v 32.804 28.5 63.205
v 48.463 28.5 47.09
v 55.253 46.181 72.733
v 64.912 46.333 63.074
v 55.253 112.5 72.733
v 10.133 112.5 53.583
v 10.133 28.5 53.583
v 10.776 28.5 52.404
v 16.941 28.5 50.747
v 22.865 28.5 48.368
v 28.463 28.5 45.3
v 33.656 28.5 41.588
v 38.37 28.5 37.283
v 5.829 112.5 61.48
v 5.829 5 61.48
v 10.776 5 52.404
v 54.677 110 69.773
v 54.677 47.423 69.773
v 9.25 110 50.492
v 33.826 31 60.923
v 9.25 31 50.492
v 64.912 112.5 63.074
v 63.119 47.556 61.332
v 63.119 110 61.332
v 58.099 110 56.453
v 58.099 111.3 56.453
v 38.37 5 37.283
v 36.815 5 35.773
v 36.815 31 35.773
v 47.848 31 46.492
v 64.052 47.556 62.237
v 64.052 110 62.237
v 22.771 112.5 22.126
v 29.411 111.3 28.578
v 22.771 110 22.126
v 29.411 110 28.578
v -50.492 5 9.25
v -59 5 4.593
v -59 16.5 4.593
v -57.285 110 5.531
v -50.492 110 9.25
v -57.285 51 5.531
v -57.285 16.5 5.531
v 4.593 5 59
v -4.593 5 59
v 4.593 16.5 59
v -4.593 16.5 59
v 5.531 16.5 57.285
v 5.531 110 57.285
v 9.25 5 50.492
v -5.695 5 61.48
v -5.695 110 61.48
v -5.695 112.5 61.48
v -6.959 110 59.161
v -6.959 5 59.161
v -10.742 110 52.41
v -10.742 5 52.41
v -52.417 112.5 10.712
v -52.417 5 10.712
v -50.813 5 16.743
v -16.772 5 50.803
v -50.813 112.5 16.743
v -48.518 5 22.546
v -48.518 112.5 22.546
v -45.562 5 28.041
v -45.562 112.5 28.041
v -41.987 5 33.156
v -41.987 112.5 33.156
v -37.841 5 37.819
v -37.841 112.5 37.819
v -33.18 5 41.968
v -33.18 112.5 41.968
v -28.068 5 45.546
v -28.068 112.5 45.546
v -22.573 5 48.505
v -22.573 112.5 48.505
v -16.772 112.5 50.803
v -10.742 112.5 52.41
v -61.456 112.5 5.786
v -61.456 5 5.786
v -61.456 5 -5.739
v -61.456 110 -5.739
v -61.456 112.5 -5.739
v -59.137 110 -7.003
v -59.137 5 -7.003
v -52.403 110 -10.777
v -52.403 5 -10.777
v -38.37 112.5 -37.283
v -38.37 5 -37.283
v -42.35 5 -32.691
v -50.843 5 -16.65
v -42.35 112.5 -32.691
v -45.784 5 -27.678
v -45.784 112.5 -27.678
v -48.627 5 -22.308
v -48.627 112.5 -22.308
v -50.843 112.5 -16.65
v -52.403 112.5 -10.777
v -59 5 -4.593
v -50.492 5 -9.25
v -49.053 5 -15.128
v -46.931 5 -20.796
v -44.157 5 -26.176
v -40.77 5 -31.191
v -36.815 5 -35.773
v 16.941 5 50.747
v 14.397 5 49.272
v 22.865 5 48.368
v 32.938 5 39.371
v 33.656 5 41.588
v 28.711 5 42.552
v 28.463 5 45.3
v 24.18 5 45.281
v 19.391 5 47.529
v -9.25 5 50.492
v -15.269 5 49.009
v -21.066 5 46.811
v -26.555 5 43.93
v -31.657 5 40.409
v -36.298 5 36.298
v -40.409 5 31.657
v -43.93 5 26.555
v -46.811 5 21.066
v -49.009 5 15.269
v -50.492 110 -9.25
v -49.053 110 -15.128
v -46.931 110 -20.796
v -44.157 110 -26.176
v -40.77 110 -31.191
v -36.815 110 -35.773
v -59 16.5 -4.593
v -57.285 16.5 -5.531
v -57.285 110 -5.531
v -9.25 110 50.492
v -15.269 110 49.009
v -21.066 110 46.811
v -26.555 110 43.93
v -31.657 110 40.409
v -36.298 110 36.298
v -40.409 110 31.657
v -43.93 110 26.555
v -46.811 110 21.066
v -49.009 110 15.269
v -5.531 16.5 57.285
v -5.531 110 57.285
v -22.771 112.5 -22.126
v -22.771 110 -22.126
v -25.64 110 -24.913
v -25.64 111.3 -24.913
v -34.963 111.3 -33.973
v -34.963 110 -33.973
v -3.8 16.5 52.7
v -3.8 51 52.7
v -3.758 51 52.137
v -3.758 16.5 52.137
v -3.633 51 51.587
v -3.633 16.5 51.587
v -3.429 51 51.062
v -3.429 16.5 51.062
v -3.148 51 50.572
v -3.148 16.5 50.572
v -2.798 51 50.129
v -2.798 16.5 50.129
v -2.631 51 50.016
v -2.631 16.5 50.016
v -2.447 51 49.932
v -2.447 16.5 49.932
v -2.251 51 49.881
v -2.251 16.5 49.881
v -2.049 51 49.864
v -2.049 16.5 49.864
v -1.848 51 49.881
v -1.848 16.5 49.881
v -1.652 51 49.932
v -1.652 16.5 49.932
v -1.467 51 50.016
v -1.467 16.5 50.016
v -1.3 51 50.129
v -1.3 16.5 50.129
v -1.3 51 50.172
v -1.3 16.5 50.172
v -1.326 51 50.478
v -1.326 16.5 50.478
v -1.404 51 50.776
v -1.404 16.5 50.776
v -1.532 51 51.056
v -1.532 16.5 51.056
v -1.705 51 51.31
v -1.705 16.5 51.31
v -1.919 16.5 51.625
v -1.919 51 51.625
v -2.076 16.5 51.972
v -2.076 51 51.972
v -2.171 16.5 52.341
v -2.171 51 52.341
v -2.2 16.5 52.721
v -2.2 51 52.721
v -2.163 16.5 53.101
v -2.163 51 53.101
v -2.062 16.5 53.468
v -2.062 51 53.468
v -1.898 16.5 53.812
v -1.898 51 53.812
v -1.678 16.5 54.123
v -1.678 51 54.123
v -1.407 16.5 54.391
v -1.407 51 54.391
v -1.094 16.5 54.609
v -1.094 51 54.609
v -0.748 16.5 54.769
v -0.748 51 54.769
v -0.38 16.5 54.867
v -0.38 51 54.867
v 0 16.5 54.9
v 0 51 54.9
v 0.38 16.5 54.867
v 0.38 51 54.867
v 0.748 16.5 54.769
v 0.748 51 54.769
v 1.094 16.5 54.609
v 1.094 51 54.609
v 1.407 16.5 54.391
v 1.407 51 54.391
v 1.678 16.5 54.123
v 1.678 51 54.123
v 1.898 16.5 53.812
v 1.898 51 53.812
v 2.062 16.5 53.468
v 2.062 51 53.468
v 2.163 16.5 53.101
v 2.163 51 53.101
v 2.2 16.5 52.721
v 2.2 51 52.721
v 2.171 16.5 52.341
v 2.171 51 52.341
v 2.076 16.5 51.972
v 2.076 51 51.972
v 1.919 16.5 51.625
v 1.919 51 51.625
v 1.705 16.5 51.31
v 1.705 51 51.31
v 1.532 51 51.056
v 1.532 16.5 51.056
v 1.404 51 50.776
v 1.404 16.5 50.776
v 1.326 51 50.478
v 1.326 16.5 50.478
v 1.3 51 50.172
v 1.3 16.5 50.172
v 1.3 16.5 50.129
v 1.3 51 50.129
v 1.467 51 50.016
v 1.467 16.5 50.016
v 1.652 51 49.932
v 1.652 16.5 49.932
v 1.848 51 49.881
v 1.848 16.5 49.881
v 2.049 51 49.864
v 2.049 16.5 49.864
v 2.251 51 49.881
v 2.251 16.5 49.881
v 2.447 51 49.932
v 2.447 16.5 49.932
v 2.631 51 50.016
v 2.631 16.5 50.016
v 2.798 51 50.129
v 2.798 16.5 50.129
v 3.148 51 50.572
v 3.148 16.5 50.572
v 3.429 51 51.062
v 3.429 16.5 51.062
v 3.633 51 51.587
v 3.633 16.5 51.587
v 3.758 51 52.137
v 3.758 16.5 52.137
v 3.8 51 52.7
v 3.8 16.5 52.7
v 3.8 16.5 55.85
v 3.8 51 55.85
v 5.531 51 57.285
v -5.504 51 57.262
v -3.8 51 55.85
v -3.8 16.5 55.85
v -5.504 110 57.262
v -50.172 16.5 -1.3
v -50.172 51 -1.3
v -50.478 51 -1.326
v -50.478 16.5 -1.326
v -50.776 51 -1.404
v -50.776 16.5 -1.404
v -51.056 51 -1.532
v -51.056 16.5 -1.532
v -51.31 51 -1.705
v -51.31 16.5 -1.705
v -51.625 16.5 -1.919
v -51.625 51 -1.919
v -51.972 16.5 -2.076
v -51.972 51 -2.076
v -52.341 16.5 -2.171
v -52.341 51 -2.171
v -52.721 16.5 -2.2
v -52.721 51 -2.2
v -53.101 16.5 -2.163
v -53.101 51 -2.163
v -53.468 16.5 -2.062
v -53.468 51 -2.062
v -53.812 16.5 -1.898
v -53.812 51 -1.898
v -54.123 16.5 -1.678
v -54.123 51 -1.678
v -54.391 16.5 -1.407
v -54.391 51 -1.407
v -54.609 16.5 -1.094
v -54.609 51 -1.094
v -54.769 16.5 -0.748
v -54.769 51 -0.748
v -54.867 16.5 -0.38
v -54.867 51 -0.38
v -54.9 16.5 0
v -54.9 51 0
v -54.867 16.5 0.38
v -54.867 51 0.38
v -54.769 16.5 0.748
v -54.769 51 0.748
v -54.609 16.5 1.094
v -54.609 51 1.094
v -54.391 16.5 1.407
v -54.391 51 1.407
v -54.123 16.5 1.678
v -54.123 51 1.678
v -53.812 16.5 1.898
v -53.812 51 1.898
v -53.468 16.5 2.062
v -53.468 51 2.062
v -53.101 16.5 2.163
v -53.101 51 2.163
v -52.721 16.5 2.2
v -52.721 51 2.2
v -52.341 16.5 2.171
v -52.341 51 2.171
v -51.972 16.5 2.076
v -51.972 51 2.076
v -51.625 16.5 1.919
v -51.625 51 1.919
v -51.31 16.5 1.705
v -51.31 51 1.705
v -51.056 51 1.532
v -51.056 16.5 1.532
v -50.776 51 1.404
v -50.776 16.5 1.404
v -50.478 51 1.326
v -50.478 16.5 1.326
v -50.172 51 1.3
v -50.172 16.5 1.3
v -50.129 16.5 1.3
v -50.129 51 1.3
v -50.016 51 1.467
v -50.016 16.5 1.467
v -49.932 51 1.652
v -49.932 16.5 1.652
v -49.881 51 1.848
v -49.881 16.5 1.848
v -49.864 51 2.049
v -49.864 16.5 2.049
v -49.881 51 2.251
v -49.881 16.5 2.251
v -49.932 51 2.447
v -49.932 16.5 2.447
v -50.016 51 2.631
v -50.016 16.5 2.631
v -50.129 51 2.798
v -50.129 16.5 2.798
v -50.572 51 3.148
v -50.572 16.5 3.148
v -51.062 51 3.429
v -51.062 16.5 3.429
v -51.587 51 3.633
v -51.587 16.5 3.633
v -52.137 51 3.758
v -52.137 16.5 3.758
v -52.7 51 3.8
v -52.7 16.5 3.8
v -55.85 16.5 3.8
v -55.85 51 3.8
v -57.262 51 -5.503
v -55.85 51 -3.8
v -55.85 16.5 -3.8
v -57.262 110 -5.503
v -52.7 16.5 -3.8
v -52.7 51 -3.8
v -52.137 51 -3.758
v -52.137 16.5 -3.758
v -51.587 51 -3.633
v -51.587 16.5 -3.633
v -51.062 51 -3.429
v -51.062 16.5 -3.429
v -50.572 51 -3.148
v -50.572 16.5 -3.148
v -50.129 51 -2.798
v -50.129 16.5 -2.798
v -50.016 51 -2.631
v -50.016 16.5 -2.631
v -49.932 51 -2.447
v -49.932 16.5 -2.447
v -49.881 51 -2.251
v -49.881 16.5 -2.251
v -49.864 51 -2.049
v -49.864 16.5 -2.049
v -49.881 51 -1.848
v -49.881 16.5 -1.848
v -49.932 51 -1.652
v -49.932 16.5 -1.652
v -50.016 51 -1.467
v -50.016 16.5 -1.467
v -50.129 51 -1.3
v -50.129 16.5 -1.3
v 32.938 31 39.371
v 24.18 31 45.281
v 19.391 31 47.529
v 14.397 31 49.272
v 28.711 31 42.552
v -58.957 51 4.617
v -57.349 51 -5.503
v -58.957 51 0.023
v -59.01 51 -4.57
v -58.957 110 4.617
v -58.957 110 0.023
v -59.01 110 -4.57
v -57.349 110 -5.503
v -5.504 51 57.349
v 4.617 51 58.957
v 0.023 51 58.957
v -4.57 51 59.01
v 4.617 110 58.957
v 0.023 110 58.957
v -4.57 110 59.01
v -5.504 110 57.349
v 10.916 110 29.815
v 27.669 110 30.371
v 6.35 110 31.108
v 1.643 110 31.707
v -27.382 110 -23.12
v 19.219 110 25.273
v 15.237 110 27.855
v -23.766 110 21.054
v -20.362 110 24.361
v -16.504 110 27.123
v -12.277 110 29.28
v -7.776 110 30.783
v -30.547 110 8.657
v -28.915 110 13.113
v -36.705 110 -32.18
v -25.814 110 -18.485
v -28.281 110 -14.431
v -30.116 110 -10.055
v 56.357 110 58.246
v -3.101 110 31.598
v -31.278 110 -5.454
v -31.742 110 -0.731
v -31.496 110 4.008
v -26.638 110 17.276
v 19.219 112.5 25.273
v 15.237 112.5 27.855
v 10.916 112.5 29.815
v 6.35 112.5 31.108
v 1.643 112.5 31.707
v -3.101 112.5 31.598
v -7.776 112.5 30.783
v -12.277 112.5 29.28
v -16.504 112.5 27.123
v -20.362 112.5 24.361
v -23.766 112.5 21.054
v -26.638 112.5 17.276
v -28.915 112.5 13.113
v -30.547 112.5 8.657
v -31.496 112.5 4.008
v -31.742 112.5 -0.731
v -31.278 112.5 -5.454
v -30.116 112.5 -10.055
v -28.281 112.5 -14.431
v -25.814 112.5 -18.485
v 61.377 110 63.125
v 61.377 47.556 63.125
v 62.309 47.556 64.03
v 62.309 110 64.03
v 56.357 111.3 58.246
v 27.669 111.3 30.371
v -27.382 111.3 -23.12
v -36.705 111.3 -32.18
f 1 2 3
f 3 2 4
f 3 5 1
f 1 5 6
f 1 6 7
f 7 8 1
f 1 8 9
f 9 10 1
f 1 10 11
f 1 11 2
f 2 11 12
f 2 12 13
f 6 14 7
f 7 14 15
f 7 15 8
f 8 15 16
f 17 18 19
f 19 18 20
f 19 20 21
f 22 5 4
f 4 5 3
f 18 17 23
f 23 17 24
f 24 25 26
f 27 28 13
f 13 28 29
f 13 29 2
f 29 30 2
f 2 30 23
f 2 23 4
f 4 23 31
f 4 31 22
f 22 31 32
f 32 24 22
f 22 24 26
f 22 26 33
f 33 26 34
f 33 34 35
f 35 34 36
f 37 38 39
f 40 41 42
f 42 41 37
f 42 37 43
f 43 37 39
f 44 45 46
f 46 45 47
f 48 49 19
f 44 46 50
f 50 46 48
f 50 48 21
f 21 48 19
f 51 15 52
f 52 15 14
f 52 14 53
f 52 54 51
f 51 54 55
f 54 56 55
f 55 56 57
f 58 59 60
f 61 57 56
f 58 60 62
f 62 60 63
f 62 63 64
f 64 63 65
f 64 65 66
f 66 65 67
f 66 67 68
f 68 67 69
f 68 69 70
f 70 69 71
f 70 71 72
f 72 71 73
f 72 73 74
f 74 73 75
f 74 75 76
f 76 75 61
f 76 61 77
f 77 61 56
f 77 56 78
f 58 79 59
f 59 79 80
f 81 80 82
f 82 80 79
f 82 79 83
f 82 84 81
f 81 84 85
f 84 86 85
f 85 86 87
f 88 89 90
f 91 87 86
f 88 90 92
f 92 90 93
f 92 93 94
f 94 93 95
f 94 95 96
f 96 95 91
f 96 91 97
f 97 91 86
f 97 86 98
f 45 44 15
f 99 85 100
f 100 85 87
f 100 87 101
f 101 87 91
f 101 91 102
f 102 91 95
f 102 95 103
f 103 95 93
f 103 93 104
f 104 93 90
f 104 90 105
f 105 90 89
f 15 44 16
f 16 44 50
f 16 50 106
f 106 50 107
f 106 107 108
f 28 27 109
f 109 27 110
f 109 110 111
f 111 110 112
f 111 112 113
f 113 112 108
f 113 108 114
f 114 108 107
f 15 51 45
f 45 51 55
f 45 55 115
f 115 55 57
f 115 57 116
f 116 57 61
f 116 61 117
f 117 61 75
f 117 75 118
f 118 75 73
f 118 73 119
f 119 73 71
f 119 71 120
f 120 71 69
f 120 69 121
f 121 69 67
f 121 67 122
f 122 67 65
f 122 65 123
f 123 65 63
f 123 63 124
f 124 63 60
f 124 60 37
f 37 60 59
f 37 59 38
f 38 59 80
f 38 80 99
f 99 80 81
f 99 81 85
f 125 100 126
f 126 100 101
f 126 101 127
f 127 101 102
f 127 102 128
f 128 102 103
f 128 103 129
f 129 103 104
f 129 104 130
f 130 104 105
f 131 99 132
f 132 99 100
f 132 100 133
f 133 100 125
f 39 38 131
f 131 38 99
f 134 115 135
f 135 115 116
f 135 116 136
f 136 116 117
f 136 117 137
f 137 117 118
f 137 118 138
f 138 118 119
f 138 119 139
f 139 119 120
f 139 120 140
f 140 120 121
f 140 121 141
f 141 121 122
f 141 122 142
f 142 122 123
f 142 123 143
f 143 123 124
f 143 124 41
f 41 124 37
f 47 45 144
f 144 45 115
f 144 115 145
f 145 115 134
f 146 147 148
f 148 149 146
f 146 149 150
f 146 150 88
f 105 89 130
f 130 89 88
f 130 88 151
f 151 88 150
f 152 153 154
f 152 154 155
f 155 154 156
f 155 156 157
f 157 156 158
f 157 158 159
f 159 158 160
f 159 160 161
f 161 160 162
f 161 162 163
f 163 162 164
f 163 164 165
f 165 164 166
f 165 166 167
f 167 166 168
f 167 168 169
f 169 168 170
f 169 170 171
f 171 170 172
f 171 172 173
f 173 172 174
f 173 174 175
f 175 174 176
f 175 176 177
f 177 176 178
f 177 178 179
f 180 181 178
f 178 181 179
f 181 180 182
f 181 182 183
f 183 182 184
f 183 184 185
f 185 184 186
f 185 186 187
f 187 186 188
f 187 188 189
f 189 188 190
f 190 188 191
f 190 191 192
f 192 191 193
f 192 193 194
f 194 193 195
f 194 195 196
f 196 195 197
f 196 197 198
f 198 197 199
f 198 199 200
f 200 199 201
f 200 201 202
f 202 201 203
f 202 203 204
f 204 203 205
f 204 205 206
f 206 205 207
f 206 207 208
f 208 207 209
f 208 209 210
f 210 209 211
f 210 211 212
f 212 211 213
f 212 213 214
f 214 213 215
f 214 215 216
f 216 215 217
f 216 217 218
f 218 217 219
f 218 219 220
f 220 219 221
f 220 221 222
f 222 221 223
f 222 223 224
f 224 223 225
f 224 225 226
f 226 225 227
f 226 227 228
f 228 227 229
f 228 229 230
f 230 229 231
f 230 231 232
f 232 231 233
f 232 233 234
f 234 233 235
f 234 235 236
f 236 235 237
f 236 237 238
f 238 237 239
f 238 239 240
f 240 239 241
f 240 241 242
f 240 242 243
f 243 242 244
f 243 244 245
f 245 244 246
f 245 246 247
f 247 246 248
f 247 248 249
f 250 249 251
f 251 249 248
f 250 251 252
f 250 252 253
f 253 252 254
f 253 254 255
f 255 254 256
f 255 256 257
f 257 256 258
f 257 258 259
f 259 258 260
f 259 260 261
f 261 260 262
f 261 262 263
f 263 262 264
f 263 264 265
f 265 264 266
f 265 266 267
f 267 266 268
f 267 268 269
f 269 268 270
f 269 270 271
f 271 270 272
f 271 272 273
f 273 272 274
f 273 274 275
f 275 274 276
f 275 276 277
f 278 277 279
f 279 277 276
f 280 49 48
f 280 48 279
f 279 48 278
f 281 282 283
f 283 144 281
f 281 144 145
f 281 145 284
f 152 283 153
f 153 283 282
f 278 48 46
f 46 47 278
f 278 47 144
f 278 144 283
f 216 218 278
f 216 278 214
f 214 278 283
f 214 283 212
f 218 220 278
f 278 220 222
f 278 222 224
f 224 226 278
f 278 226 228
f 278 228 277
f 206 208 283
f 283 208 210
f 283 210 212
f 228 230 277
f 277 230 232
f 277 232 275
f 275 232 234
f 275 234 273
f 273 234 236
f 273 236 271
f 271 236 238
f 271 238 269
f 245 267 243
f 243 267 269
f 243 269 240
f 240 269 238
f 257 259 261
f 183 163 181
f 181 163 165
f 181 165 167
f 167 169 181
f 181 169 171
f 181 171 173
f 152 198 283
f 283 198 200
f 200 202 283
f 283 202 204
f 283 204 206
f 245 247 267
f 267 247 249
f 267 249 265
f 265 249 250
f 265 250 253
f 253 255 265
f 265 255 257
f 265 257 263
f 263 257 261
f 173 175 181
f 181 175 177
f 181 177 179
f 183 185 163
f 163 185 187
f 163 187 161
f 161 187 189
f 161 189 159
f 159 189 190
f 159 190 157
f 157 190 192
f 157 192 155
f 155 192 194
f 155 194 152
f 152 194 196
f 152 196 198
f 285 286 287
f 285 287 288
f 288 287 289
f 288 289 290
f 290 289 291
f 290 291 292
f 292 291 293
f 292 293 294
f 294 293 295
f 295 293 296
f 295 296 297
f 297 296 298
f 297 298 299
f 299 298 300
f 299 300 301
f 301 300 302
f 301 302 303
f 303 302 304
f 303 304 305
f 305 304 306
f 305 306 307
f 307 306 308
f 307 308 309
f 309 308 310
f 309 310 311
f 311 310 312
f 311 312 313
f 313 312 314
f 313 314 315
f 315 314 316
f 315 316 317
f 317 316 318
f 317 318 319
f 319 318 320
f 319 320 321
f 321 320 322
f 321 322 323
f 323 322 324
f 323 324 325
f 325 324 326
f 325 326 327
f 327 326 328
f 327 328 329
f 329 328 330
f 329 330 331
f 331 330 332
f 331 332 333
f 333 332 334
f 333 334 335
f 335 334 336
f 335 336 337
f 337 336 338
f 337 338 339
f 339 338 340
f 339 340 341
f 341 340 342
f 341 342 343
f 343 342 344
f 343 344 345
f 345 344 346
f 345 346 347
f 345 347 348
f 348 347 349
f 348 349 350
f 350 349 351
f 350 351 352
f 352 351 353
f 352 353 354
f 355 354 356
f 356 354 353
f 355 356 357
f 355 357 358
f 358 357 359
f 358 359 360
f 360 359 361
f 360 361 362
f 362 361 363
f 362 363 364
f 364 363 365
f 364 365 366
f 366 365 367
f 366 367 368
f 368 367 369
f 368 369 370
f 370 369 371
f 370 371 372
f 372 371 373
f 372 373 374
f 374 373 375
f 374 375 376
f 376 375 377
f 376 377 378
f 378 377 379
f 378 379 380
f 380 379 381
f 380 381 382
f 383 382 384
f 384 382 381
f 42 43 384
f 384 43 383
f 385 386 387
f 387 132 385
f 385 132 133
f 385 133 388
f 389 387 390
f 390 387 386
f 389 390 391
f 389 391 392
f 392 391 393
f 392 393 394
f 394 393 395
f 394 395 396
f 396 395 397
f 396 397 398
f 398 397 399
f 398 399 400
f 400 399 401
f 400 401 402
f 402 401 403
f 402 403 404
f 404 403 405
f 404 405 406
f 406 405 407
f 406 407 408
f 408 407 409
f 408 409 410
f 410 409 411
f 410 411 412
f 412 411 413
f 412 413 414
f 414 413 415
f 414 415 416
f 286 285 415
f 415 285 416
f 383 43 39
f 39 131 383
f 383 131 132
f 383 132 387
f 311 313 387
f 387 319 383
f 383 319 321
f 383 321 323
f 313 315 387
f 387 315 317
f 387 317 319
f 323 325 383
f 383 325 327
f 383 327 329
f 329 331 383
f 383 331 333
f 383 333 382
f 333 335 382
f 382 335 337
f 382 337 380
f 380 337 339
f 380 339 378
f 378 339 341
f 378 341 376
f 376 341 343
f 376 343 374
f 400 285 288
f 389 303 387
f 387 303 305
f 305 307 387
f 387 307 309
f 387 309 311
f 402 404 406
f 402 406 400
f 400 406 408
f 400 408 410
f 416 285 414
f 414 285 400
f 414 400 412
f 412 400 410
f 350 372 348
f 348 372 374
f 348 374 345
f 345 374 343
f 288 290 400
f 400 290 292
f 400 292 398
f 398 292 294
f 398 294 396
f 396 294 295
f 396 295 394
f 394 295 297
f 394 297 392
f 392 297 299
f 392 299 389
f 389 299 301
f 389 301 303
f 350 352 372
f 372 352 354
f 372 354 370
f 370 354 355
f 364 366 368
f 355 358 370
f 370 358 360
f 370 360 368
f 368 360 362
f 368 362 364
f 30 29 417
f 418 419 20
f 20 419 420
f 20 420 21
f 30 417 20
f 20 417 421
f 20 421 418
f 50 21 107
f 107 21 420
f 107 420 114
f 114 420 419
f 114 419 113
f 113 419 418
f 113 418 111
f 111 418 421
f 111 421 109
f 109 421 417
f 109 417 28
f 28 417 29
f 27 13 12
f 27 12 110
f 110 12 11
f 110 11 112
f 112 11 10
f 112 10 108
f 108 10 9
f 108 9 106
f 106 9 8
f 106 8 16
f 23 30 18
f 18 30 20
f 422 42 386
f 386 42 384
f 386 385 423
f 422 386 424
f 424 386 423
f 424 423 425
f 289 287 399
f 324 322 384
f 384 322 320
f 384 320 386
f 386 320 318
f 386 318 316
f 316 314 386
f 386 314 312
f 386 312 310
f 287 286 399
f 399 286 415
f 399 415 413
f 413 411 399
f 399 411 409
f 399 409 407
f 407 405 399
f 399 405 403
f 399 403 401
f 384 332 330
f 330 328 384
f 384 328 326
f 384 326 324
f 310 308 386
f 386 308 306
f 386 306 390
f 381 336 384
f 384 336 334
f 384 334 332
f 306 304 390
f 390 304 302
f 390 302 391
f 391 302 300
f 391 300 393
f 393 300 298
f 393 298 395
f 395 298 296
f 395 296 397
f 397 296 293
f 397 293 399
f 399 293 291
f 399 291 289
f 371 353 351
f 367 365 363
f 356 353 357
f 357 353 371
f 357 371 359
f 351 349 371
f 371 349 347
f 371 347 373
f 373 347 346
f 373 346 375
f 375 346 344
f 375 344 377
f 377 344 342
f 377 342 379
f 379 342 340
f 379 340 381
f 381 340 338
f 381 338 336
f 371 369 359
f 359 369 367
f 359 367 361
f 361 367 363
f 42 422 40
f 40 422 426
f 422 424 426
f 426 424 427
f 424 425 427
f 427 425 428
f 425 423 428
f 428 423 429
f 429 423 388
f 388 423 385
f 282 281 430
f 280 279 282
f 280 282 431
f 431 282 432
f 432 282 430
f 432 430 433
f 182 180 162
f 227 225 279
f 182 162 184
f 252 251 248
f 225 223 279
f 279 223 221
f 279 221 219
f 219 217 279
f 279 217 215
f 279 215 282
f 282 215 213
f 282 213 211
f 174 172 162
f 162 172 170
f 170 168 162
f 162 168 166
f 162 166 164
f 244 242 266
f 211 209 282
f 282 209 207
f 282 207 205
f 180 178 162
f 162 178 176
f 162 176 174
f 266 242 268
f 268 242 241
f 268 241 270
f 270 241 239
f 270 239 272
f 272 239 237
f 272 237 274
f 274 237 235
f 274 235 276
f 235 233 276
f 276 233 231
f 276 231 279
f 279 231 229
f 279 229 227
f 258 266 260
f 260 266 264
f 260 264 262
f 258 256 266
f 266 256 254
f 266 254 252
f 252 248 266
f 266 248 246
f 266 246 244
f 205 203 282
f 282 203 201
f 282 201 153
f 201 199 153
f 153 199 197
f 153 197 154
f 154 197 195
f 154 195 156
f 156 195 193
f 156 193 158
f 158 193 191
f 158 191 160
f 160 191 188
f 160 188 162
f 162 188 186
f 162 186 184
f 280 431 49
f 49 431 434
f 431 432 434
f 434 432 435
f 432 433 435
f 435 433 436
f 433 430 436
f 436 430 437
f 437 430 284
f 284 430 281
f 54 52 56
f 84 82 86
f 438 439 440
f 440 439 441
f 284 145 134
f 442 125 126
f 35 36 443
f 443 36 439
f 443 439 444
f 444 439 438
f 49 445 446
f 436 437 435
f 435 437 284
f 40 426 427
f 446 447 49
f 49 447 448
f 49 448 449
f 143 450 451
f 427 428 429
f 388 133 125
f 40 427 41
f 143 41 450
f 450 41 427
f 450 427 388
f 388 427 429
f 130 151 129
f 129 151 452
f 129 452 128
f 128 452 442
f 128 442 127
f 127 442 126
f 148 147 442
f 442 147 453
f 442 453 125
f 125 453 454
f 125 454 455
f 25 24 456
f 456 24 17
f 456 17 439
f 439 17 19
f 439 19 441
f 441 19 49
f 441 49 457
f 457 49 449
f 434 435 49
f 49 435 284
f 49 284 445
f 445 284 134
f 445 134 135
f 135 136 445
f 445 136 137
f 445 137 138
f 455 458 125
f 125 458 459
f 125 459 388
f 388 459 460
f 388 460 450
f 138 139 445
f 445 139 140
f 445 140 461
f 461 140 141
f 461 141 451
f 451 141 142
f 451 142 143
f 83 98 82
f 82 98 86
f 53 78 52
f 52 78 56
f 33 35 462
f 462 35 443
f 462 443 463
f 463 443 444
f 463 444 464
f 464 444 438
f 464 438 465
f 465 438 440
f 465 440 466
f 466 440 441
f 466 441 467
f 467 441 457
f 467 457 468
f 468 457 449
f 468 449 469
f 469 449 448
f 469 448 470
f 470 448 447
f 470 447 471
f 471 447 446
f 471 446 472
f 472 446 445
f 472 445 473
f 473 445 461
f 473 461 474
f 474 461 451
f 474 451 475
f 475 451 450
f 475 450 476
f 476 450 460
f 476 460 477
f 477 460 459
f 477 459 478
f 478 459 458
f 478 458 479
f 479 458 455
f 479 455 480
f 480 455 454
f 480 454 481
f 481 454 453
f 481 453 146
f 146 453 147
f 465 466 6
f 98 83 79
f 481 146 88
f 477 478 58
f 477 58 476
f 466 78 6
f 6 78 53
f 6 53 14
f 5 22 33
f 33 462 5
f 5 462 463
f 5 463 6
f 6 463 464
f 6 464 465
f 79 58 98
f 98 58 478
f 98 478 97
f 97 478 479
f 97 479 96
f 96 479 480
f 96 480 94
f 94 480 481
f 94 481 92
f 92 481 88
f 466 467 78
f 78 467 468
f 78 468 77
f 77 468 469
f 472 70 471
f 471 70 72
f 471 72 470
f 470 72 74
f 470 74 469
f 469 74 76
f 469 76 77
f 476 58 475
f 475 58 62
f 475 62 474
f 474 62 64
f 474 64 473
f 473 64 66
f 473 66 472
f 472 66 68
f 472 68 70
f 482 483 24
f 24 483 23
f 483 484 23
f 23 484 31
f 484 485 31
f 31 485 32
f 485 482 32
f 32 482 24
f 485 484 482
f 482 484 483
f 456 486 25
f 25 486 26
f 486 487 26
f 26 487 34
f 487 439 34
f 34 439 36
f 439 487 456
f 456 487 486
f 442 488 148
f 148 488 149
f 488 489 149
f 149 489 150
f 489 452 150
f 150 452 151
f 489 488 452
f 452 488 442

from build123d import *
from build123d.topology import SkipClean

# Parameters (mm, degrees)
SALIENTE_EXTRUIR1_DEPTH  = 5
CROQUIS2_R               = 2.1
CORTAR_EXTRUIR1_DEPTH    = 83.176639016
CORTAR_EXTRUIR2_DEPTH    = 83.176639016
CROQUIS5_R               = 2.05
CORTAR_EXTRUIR4_DEPTH    = 83.176639016
SALIENTE_EXTRUIR2_DEPTH  = 5
CORTAR_EXTRUIR10_DEPTH   = 98.128780493
SALIENTE_EXTRUIR4_DEPTH  = 4
SALIENTE_EXTRUIR5_DEPTH  = 4
CROQUIS17_R              = 2.4
CORTAR_EXTRUIR11_DEPTH   = 98.128780493
SALIENTE_EXTRUIR6_DEPTH  = 105
CORTAR_EXTRUIR12_DEPTH   = 200
CORTAR_EXTRUIR13_DEPTH   = 200
SALIENTE_EXTRUIR7_DEPTH  = 93.5
CROQUIS28_W              = 67.409090619
CROQUIS28_H              = 26
CORTAR_EXTRUIR15_DEPTH   = 104
SALIENTE_EXTRUIR12_START = 2.5
SALIENTE_EXTRUIR12_DEPTH = 2.5
SALIENTE_EXTRUIR13_START = 23.5
SALIENTE_EXTRUIR13_DEPTH = 23.5
CORTAR_EXTRUIR20_DEPTH   = 50
SALIENTE_EXTRUIR18_DEPTH = 30.5
CROQUIS45_W              = 45.132524043
CROQUIS45_H              = 53.175944169
CORTAR_EXTRUIR23_DEPTH   = 30.5
CROQUIS46_W              = 25.804527637
CROQUIS46_H              = 25.652736297
CORTAR_EXTRUIR24_DEPTH   = 30.5
CORTAR_EXTRUIR26_DEPTH   = 59
SALIENTE_EXTRUIR19_DEPTH = 2.5
CROQUIS49_W              = 1.3
CROQUIS49_H              = 62.443972795
CORTAR_EXTRUIR27_DEPTH   = 2.5
CROQUIS50_W              = 40
CROQUIS50_H              = 1.3
CORTAR_EXTRUIR28_DEPTH   = 2.5
CROQUIS51_W              = 13
CROQUIS51_H              = 1.3
CORTAR_EXTRUIR29_DEPTH   = 2.5


with BuildPart() as part:
    # Croquis1 → Saliente-Extruir1 (new body)
    with BuildSketch(Plane(origin=(0, 0, 0), x_dir=(1, 0, 0), z_dir=(0, 1, 0))):
        with BuildLine():
            Line((4, 58), (8.807070745, 49.218243619))
            ThreePointArc((8.807070745, 49.218243619), (35.355339059, 35.355339059), (49.218243619, 8.807070745))
            Line((49.218243619, 8.807070745), (58, 4))
            Line((58, 4), (58, -4))
            Line((58, -4), (49.218243619, -8.807070745))
            ThreePointArc((49.218243619, -8.807070745), (35.355339059, -35.355339059), (8.807070745, -49.218243619))
            Line((8.807070745, -49.218243619), (4, -58))
            Line((4, -58), (-4, -58))
            Line((-4, -58), (-8.807070745, -49.218243619))
            ThreePointArc((-8.807070745, -49.218243619), (-35.355339059, -35.355339059), (-49.218243619, -8.807070745))
            Line((-49.218243619, -8.807070745), (-58, -4))
            Line((-58, -4), (-58, 4))
            Line((-58, 4), (-49.218243619, 8.807070745))
            ThreePointArc((-49.218243619, 8.807070745), (-35.355339059, 35.355339059), (-8.807070745, 49.218243619))
            Line((-8.807070745, 49.218243619), (-4, 58))
            Line((-4, 58), (4, 58))
        make_face()
    extrude(amount=SALIENTE_EXTRUIR1_DEPTH)

    # Croquis2 → Cortar-Extruir1 (cut, through all)
    with BuildSketch(Plane(origin=(0, 5, 0), x_dir=(1, 0, 0), z_dir=(0, 1, 0))):
        with Locations(Location((0, 52.7, 0), (0, 0, 270))):
            Circle(CROQUIS2_R)
        with Locations(Location((52.7, 0, 0), (0, 0, 270))):
            Circle(CROQUIS2_R)
        with Locations(Location((0, -52.7, 0), (0, 0, 270))):
            Circle(CROQUIS2_R)
        with Locations(Location((-52.7, 0, 0), (0, 0, 270))):
            Circle(CROQUIS2_R)
    extrude(amount=-CORTAR_EXTRUIR1_DEPTH, mode=Mode.SUBTRACT)

    # Croquis3 → Cortar-Extruir2 (cut, through all)
    with BuildSketch(Plane(origin=(0, 5, 0), x_dir=(1, 0, 0), z_dir=(0, 1, 0))):
        Polygon((20.506096654, -34.648232278), (34.648232278, -20.506096654), (47.376154339, -33.234018716), (67.218949341, -53.076813717), (53.076813717, -67.218949341), (33.234018716, -47.376154339), align=None)
    extrude(amount=-CORTAR_EXTRUIR2_DEPTH, mode=Mode.SUBTRACT)

    # Croquis5 → Cortar-Extruir4 (cut, through all)
    with BuildSketch(Plane(origin=(0, 5, 0), x_dir=(1, 0, 0), z_dir=(0, 1, 0))):
        with Locations(Location((-7.78, 7.78, 0), (0, 0, 270))):
            Circle(CROQUIS5_R)
        with Locations(Location((7.78, 7.78, 0), (0, 0, 270))):
            Circle(CROQUIS5_R)
        with Locations(Location((7.78, -7.78, 0), (0, 0, 270))):
            Circle(CROQUIS5_R)
        with Locations(Location((-7.78, -7.78, 0), (0, 0, 270))):
            Circle(CROQUIS5_R)
        with BuildLine():
            Line((21.554064831, -30.039346205), (23.334523779, -31.819805153))
            Line((23.334523779, -31.819805153), (24.748737342, -30.405591591))
            Line((24.748737342, -30.405591591), (22.968278393, -28.625132642))
            ThreePointArc((22.968278393, -28.625132642), (19.622213178, -26.69328099), (21.554064831, -30.039346205))
        make_face()
        with BuildLine():
            Line((28.625132642, -22.968278393), (30.986174209, -25.329319959))
            Line((30.986174209, -25.329319959), (32.400387771, -23.915106397))
            Line((32.400387771, -23.915106397), (30.039346205, -21.554064831))
            ThreePointArc((30.039346205, -21.554064831), (26.69328099, -19.622213178), (28.625132642, -22.968278393))
        make_face()
    extrude(amount=-CORTAR_EXTRUIR4_DEPTH, mode=Mode.SUBTRACT)

    # Croquis7 → Saliente-Extruir2 (add, through all)
    with BuildSketch(Plane(origin=(0, 5, 0), x_dir=(1, 0, 0), z_dir=(0, 1, 0))):
        Polygon((68.589357775, -54.447222151), (54.447222151, -68.589357775), (8.807070745, -49.218243619), (18.571685103, -46.422973972), (27.56994834, -41.712083963), (48.790367902, -62.932503526), (62.932503526, -48.790367902), (41.712083963, -27.56994834), (46.422973972, -18.571685103), (49.218243619, -8.807070745), align=None)
    extrude(amount=-SALIENTE_EXTRUIR2_DEPTH)

    # Croquis8 → Cortar-Extruir10 (cut, through all)
    with BuildSketch(Plane(origin=(0, 5, 0), x_dir=(1, 0, 0), z_dir=(0, 1, 0))):
        with BuildLine():
            Line((54.283137452, -59.939991701), (51.490214314, -57.147068564))
            Line((51.490214314, -57.147068564), (50.076000752, -58.561282126))
            Line((50.076000752, -58.561282126), (52.868923889, -61.354205264))
            ThreePointArc((52.868923889, -61.354205264), (56.214989104, -63.286056916), (54.283137452, -59.939991701))
        make_face()
        with BuildLine():
            Line((57.371843354, -51.714989104), (58.786056916, -50.300775542))
            Line((58.786056916, -50.300775542), (61.354205264, -52.868923889))
            ThreePointArc((61.354205264, -52.868923889), (63.286056916, -56.214989104), (59.939991701, -54.283137452))
            Line((59.939991701, -54.283137452), (57.371843354, -51.714989104))
        make_face()
    extrude(amount=-CORTAR_EXTRUIR10_DEPTH, mode=Mode.SUBTRACT)

    # Croquis15 → Saliente-Extruir4 (add)
    with BuildSketch(Plane.XZ):
        with BuildLine():
            Line((-1.111111111, -20.469866441), (-1.111111111, -22.472548411))
            ThreePointArc((-1.111111111, -22.472548411), (0, 22.5), (1.111111111, -22.472548411))
            Line((1.111111111, -22.472548411), (1.111111111, -20.469866441))
            ThreePointArc((1.111111111, -20.469866441), (0, 20.5), (-1.111111111, -20.469866441))
        make_face()
    extrude(amount=SALIENTE_EXTRUIR4_DEPTH)

    # Croquis16 → Saliente-Extruir5 (add)
    with SkipClean():  # the faces are left unmerged after this step: merging them gives an invalid solid
        with BuildSketch(Plane.XZ):
            with BuildLine():
                Line((-1.111111111, -20.469866441), (-1.111111111, -22.472548411))
                ThreePointArc((-1.111111111, -22.472548411), (0, -22.5), (1.111111111, -22.472548411))
                Line((1.111111111, -22.472548411), (1.111111111, -20.469866441))
                ThreePointArc((1.111111111, -20.469866441), (0, -20.5), (-1.111111111, -20.469866441))
            make_face()
        extrude(amount=SALIENTE_EXTRUIR5_DEPTH)

    # Croquis17 → Cortar-Extruir11 (cut, through all)
    with SkipClean():  # the faces are left unmerged after this step: merging them gives an invalid solid
        with BuildSketch(Plane.XZ):
            with Locations(Location((42.43, 0, 0), (0, 0, 270))):
                Circle(CROQUIS17_R)
            with Locations(Location((0, -42.43, 0), (0, 0, 270))):
                Circle(CROQUIS17_R)
            with Locations(Location((-42.43, 0, 0), (0, 0, 270))):
                Circle(CROQUIS17_R)
            with Locations(Location((0, 42.43, 0), (0, 0, 270))):
                Circle(CROQUIS17_R)
        extrude(amount=-CORTAR_EXTRUIR11_DEPTH, mode=Mode.SUBTRACT)

    # Croquis18 → Saliente-Extruir6 (add)
    with SkipClean():  # the faces are left unmerged after this step: merging them gives an invalid solid
        with BuildSketch(Plane(origin=(0, 5, 0), x_dir=(1, 0, 0), z_dir=(0, 1, 0))):
            with BuildLine():
                Line((-7.026199157, 59.180786921), (-10.712769702, 52.416472271))
                ThreePointArc((-10.712769702, 52.416472271), (-37.80704006, 37.853371341), (-52.403312858, 10.776956969))
                Line((-52.403312858, 10.776956969), (-59.137075713, 7.002717611))
                Line((-59.137075713, 7.002717611), (-61.456288791, 5.738739948))
                Line((-61.456288791, 5.738739948), (-61.456288791, -5.78570304))
                Line((-61.456288791, -5.78570304), (-59.137075713, -7.049680703))
                Line((-59.137075713, -7.049680703), (-52.416550741, -10.71238575))
                ThreePointArc((-52.416550741, -10.71238575), (-37.841055246, -37.819367233), (-10.74243433, -52.41040073))
                Line((-10.74243433, -52.41040073), (-6.959006403, -59.160557259))
                Line((-6.959006403, -59.160557259), (-5.695028739, -61.479770337))
                Line((-5.695028739, -61.479770337), (5.829414249, -61.479770337))
                Line((5.829414249, -61.479770337), (7.093391912, -59.160557259))
                Line((7.093391912, -59.160557259), (10.133049539, -53.583232651))
                Line((10.133049539, -53.583232651), (55.252838681, -72.733488714))
                Line((55.252838681, -72.733488714), (72.733488714, -55.252838681))
                Line((72.733488714, -55.252838681), (53.583232651, -10.133049539))
                Line((53.583232651, -10.133049539), (59.204268467, -6.982487949))
                Line((59.204268467, -6.982487949), (61.523481546, -5.718510285))
                Line((61.523481546, -5.718510285), (61.523481546, 5.805932703))
                Line((61.523481546, 5.805932703), (59.204268467, 7.069910366))
                Line((59.204268467, 7.069910366), (52.403430197, 10.776386386))
                ThreePointArc((52.403430197, 10.776386386), (37.849997802, 37.810417433), (10.831208274, 52.392126578))
                Line((10.831208274, 52.392126578), (7.026199157, 59.180786921))
                Line((7.026199157, 59.180786921), (5.762221494, 61.5))
                Line((5.762221494, 61.5), (-5.762221494, 61.5))
                Line((-5.762221494, 61.5), (-7.026199157, 59.180786921))
            make_face()
        extrude(amount=SALIENTE_EXTRUIR6_DEPTH)

    # Croquis23 → Cortar-Extruir12 (cut)
    with BuildSketch(Plane.XZ.offset(4)):
        with BuildLine():
            Line((59, -4.59262422), (58.95889986, -4.615122143))
            Line((58.95889986, -4.615122143), (50.492416575, -9.249614646))
            ThreePointArc((50.492416575, -9.249614646), (36.297654901, -36.297654901), (9.249614646, -50.492416575))
            Line((9.249614646, -50.492416575), (4.615122143, -58.95889986))
            Line((4.615122143, -58.95889986), (4.592624221, -59))
            Line((4.592624221, -59), (-4.59262422, -59))
            Line((-4.59262422, -59), (-4.615122143, -58.95889986))
            Line((-4.615122143, -58.95889986), (-9.249614646, -50.492416575))
            ThreePointArc((-9.249614646, -50.492416575), (-36.297654901, -36.297654901), (-50.492416575, -9.249614646))
            Line((-50.492416575, -9.249614646), (-58.95889986, -4.615122143))
            Line((-58.95889986, -4.615122143), (-59, -4.592624221))
            Line((-59, -4.592624221), (-59, 4.59262422))
            Line((-59, 4.59262422), (-58.95889986, 4.615122143))
            Line((-58.95889986, 4.615122143), (-50.492416575, 9.249614646))
            ThreePointArc((-50.492416575, 9.249614646), (-36.297654901, 36.297654901), (-9.249614646, 50.492416575))
            Line((-9.249614646, 50.492416575), (-4.615122143, 58.95889986))
            Line((-4.615122143, 58.95889986), (-4.592624221, 59))
            Line((-4.592624221, 59), (4.59262422, 59))
            Line((4.59262422, 59), (4.615122143, 58.95889986))
            Line((4.615122143, 58.95889986), (9.249614646, 50.492416575))
            Line((9.249614646, 50.492416575), (54.677398303, 69.773395186))
            Line((54.677398303, 69.773395186), (69.773395186, 54.677398303))
            Line((69.773395186, 54.677398303), (50.492416575, 9.249614646))
            Line((50.492416575, 9.249614646), (58.95889986, 4.615122143))
            Line((58.95889986, 4.615122143), (59, 4.592624221))
            Line((59, 4.592624221), (59, -4.59262422))
        make_face()
    extrude(amount=-CORTAR_EXTRUIR12_DEPTH, mode=Mode.SUBTRACT)

    # Croquis24 → Cortar-Extruir13 (cut)
    with BuildSketch(Plane.XZ.offset(-5)):
        Polygon((70.463480146, 68.467722749), (119.078352052, 18.435781803), (-1.311453111, -98.544188314), (-49.926325017, -48.512247367), align=None)
    extrude(amount=-CORTAR_EXTRUIR13_DEPTH, mode=Mode.SUBTRACT)

    # Croquis27 → Saliente-Extruir7 (add)
    with BuildSketch(Plane(origin=(0, 110, 0), x_dir=(1, 0, 0), z_dir=(0, 1, 0))):
        with BuildLine():
            Line((-52.7, 3.8), (-55.85, 3.8))
            Line((-55.85, 3.8), (-57.285166424, 5.531311876))
            Line((-57.285166424, 5.531311876), (-59, 4.59262422))
            Line((-59, 4.59262422), (-59, 4.1))
            Line((-59, 4.1), (-59, -4.1))
            Line((-59, -4.1), (-59, -4.59262422))
            Line((-59, -4.59262422), (-57.285166424, -5.531311876))
            Line((-57.285166424, -5.531311876), (-55.85, -3.8))
            Line((-55.85, -3.8), (-52.7, -3.8))
            ThreePointArc((-52.7, -3.8), (-51.320540321, -3.540775479), (-50.129285786, -2.798468944))
            ThreePointArc((-50.129285786, -2.798468944), (-49.863593997, -2.049234472), (-50.129285786, -1.3))
            Line((-50.129285786, -1.3), (-50.172155068, -1.3))
            ThreePointArc((-50.172155068, -1.3), (-50.775893422, -1.404270069), (-51.309685287, -1.705))
            ThreePointArc((-51.309685287, -1.705), (-54.9, 0), (-51.309685287, 1.705))
            ThreePointArc((-51.309685287, 1.705), (-50.775893422, 1.404270069), (-50.172155068, 1.3))
            Line((-50.172155068, 1.3), (-50.129285786, 1.3))
            ThreePointArc((-50.129285786, 1.3), (-49.863593997, 2.049234472), (-50.129285786, 2.798468944))
            ThreePointArc((-50.129285786, 2.798468944), (-51.320540321, 3.540775479), (-52.7, 3.8))
        make_face()
        with BuildLine():
            Line((-3.8, -52.7), (-3.8, -55.85))
            Line((-3.8, -55.85), (-5.531311876, -57.285166424))
            Line((-5.531311876, -57.285166424), (-4.59262422, -59))
            Line((-4.59262422, -59), (-4.1, -59))
            Line((-4.1, -59), (4.1, -59))
            Line((4.1, -59), (4.59262422, -59))
            Line((4.59262422, -59), (5.531311876, -57.285166424))
            Line((5.531311876, -57.285166424), (3.8, -55.85))
            Line((3.8, -55.85), (3.8, -52.7))
            ThreePointArc((3.8, -52.7), (3.540775479, -51.320540321), (2.798468944, -50.129285786))
            ThreePointArc((2.798468944, -50.129285786), (2.049234472, -49.863593997), (1.3, -50.129285786))
            Line((1.3, -50.129285786), (1.3, -50.172155068))
            ThreePointArc((1.3, -50.172155068), (1.404270069, -50.775893422), (1.705, -51.309685287))
            ThreePointArc((1.705, -51.309685287), (0, -54.9), (-1.705, -51.309685287))
            ThreePointArc((-1.705, -51.309685287), (-1.404270069, -50.775893422), (-1.3, -50.172155068))
            Line((-1.3, -50.172155068), (-1.3, -50.129285786))
            ThreePointArc((-1.3, -50.129285786), (-2.049234472, -49.863593997), (-2.798468944, -50.129285786))
            ThreePointArc((-2.798468944, -50.129285786), (-3.540775479, -51.320540321), (-3.8, -52.7))
        make_face()
    extrude(amount=-SALIENTE_EXTRUIR7_DEPTH)

    # Croquis28 → Cortar-Extruir15 (cut)
    with BuildSketch(Plane(origin=(30.327841924, 0, 16.528759307), x_dir=(0.4785464071110931, 0, -0.8780622621665641), z_dir=(0.878062262166564, 0, 0.47854640711109303))):
        with Locations((-17.488875667, 18)):
            Rectangle(CROQUIS28_W, CROQUIS28_H)
    extrude(amount=CORTAR_EXTRUIR15_DEPTH, mode=Mode.SUBTRACT)

    # Croquis35 → Saliente-Extruir12 (add)
    with BuildSketch(Plane.XZ.offset(-31).offset(SALIENTE_EXTRUIR12_START)):
        with BuildLine():
            Line((36.815275181, 35.772545563), (64.912430407, 63.073896988))
            Line((64.912430407, 63.073896988), (55.252838681, 72.733488714))
            Line((55.252838681, 72.733488714), (10.133049539, 53.583232651))
            Line((10.133049539, 53.583232651), (9.249614646, 50.492416575))
            ThreePointArc((9.249614646, 50.492416575), (24.179788447, 45.281092448), (36.815275181, 35.772545563))
        make_face()
    extrude(amount=-SALIENTE_EXTRUIR12_DEPTH)

    # Croquis36 → Saliente-Extruir13 (add)
    with BuildSketch(Plane.XZ.offset(-28.5).offset(SALIENTE_EXTRUIR13_START)):
        with BuildLine():
            Line((36.815275181, 35.772545563), (38.369688012, 37.282932313))
            ThreePointArc((38.369688012, 37.282932313), (24.431166149, 47.595883442), (7.92649179, 52.909552331))
            Line((7.92649179, 52.909552331), (9.249614646, 50.492416575))
            ThreePointArc((9.249614646, 50.492416575), (24.179788447, 45.281092448), (36.815275181, 35.772545563))
        make_face()
    extrude(amount=-SALIENTE_EXTRUIR13_DEPTH)

    # Croquis37 → Cortar-Extruir20 (cut)
    with BuildSketch(Plane(origin=(0, 0, 0), x_dir=(-0.7171904301357217, 0, -0.6968772394918195), z_dir=(0.6968772394918195, 0, -0.7171904301357217))):
        Polygon((-63.5, 28.5), (-90.509337102, 28.5), (-90.509337102, 49.5), align=None)
    extrude(amount=-CORTAR_EXTRUIR20_DEPTH, mode=Mode.SUBTRACT)

    # Croquis44 → Saliente-Extruir18 (add)
    with BuildSketch(Plane(origin=(0, 0, 0), x_dir=(-0.7171904301357217, 0, -0.6968772394918195), z_dir=(0.6968772394918195, 0, -0.7171904301357217))):
        Polygon((-90.509337102, 49.5), (-63.5, 28.5), (-67.572932559, 28.5), (-90.509337102, 46.333258683), align=None)
    extrude(amount=-SALIENTE_EXTRUIR18_DEPTH)

    # Croquis45 → Cortar-Extruir23 (cut)
    with BuildSketch(Plane(origin=(-17.724154207, 0, 41.759760177), x_dir=(0.9205192214063578, 0, 0.39069727798057796), z_dir=(-0.39069727798057796, 0, 0.9205192214063578))):
        with Locations((59.311541546, 41.806873094)):
            Rectangle(CROQUIS45_W, CROQUIS45_H)
    extrude(amount=CORTAR_EXTRUIR23_DEPTH, mode=Mode.SUBTRACT)

    # Croquis46 → Cortar-Extruir24 (cut)
    with BuildSketch(Plane(origin=(63.993163697, 0, 63.993163697), x_dir=(0.7071067811865472, 0, -0.7071067811865479), z_dir=(0.7071067811865479, 0, 0.7071067811865472))):
        with Locations((-5.952208555, 48.347893674)):
            Rectangle(CROQUIS46_W, CROQUIS46_H)
    extrude(amount=CORTAR_EXTRUIR24_DEPTH, mode=Mode.SUBTRACT)

    # Croquis47 → Cortar-Extruir26 (cut)
    with BuildSketch(Plane(origin=(0, 110, 0), x_dir=(1, 0, 0), z_dir=(0, 1, 0))):
        Polygon((-57.285166424, -5.531311876), (-58.957315638, -4.617048657), (-58.957315638, -0.023481546), (-59.010484015, 4.569777856), (-57.34902898, 5.503334171), (-47.331961612, 5.503334171), (-47.331961612, -5.531311876), align=None)
        Polygon((5.530814642, -57.284806127), (4.616551423, -58.956955341), (0.022984312, -58.956955341), (-4.57027509, -59.010123718), (-5.503831405, -57.348668683), (-5.503831405, -47.331601315), (5.530814642, -47.331601315), align=None)
    extrude(amount=-CORTAR_EXTRUIR26_DEPTH, mode=Mode.SUBTRACT)

    # Croquis48 → Saliente-Extruir19 (add)
    with BuildSketch(Plane(origin=(0, 110, 0), x_dir=(1, 0, 0), z_dir=(0, 1, 0))):
        with BuildLine():
            Line((-52.403312858, 10.776956969), (-61.456288791, 5.738739948))
            Line((-61.456288791, 5.738739948), (-61.456288791, -5.78570304))
            Line((-61.456288791, -5.78570304), (-52.416550741, -10.71238575))
            ThreePointArc((-52.416550741, -10.71238575), (-37.841055246, -37.819367233), (-10.74243433, -52.41040073))
            Line((-10.74243433, -52.41040073), (-5.695028739, -61.479770337))
            Line((-5.695028739, -61.479770337), (5.829414249, -61.479770337))
            Line((5.829414249, -61.479770337), (10.133049539, -53.583232651))
            Line((10.133049539, -53.583232651), (55.252838681, -72.733488714))
            Line((55.252838681, -72.733488714), (64.912430407, -63.073896988))
            Line((64.912430407, -63.073896988), (22.770796157, -22.125852354))
            ThreePointArc((22.770796157, -22.125852354), (-22.125852354, -22.770796157), (-22.770796157, 22.125852354))
            Line((-22.770796157, 22.125852354), (-38.369688012, 37.282932313))
            ThreePointArc((-38.369688012, 37.282932313), (-47.281879235, 25.033455535), (-52.403312858, 10.776956969))
        make_face()
    extrude(amount=SALIENTE_EXTRUIR19_DEPTH)

    # Croquis49 → Cortar-Extruir27 (cut)
    with BuildSketch(Plane(origin=(0, 0, 0), x_dir=(-0.7171904301357217, 0, -0.6968772394918195), z_dir=(0.6968772394918195, 0, -0.7171904301357217))):
        with Locations((-88.659079171, 78.778013602)):
            Rectangle(CROQUIS49_W, CROQUIS49_H)
    extrude(amount=-CORTAR_EXTRUIR27_DEPTH, mode=Mode.SUBTRACT)

    # Croquis50 → Cortar-Extruir28 (cut)
    with BuildSketch(Plane(origin=(0, 0, 0), x_dir=(-0.7171904301357217, 0, -0.6968772394918195), z_dir=(0.6968772394918195, 0, -0.7171904301357217))):
        with Locations((-61.009079171, 110.65)):
            Rectangle(CROQUIS50_W, CROQUIS50_H)
    extrude(amount=-CORTAR_EXTRUIR28_DEPTH, mode=Mode.SUBTRACT)

    # Croquis51 → Cortar-Extruir29 (cut)
    with BuildSketch(Plane(origin=(0, 0, 0), x_dir=(-0.7171904301357217, 0, -0.6968772394918195), z_dir=(0.6968772394918195, 0, -0.7171904301357217))):
        with Locations((42.25, 110.65)):
            Rectangle(CROQUIS51_W, CROQUIS51_H)
    extrude(amount=-CORTAR_EXTRUIR29_DEPTH, mode=Mode.SUBTRACT)


solid = part.part
